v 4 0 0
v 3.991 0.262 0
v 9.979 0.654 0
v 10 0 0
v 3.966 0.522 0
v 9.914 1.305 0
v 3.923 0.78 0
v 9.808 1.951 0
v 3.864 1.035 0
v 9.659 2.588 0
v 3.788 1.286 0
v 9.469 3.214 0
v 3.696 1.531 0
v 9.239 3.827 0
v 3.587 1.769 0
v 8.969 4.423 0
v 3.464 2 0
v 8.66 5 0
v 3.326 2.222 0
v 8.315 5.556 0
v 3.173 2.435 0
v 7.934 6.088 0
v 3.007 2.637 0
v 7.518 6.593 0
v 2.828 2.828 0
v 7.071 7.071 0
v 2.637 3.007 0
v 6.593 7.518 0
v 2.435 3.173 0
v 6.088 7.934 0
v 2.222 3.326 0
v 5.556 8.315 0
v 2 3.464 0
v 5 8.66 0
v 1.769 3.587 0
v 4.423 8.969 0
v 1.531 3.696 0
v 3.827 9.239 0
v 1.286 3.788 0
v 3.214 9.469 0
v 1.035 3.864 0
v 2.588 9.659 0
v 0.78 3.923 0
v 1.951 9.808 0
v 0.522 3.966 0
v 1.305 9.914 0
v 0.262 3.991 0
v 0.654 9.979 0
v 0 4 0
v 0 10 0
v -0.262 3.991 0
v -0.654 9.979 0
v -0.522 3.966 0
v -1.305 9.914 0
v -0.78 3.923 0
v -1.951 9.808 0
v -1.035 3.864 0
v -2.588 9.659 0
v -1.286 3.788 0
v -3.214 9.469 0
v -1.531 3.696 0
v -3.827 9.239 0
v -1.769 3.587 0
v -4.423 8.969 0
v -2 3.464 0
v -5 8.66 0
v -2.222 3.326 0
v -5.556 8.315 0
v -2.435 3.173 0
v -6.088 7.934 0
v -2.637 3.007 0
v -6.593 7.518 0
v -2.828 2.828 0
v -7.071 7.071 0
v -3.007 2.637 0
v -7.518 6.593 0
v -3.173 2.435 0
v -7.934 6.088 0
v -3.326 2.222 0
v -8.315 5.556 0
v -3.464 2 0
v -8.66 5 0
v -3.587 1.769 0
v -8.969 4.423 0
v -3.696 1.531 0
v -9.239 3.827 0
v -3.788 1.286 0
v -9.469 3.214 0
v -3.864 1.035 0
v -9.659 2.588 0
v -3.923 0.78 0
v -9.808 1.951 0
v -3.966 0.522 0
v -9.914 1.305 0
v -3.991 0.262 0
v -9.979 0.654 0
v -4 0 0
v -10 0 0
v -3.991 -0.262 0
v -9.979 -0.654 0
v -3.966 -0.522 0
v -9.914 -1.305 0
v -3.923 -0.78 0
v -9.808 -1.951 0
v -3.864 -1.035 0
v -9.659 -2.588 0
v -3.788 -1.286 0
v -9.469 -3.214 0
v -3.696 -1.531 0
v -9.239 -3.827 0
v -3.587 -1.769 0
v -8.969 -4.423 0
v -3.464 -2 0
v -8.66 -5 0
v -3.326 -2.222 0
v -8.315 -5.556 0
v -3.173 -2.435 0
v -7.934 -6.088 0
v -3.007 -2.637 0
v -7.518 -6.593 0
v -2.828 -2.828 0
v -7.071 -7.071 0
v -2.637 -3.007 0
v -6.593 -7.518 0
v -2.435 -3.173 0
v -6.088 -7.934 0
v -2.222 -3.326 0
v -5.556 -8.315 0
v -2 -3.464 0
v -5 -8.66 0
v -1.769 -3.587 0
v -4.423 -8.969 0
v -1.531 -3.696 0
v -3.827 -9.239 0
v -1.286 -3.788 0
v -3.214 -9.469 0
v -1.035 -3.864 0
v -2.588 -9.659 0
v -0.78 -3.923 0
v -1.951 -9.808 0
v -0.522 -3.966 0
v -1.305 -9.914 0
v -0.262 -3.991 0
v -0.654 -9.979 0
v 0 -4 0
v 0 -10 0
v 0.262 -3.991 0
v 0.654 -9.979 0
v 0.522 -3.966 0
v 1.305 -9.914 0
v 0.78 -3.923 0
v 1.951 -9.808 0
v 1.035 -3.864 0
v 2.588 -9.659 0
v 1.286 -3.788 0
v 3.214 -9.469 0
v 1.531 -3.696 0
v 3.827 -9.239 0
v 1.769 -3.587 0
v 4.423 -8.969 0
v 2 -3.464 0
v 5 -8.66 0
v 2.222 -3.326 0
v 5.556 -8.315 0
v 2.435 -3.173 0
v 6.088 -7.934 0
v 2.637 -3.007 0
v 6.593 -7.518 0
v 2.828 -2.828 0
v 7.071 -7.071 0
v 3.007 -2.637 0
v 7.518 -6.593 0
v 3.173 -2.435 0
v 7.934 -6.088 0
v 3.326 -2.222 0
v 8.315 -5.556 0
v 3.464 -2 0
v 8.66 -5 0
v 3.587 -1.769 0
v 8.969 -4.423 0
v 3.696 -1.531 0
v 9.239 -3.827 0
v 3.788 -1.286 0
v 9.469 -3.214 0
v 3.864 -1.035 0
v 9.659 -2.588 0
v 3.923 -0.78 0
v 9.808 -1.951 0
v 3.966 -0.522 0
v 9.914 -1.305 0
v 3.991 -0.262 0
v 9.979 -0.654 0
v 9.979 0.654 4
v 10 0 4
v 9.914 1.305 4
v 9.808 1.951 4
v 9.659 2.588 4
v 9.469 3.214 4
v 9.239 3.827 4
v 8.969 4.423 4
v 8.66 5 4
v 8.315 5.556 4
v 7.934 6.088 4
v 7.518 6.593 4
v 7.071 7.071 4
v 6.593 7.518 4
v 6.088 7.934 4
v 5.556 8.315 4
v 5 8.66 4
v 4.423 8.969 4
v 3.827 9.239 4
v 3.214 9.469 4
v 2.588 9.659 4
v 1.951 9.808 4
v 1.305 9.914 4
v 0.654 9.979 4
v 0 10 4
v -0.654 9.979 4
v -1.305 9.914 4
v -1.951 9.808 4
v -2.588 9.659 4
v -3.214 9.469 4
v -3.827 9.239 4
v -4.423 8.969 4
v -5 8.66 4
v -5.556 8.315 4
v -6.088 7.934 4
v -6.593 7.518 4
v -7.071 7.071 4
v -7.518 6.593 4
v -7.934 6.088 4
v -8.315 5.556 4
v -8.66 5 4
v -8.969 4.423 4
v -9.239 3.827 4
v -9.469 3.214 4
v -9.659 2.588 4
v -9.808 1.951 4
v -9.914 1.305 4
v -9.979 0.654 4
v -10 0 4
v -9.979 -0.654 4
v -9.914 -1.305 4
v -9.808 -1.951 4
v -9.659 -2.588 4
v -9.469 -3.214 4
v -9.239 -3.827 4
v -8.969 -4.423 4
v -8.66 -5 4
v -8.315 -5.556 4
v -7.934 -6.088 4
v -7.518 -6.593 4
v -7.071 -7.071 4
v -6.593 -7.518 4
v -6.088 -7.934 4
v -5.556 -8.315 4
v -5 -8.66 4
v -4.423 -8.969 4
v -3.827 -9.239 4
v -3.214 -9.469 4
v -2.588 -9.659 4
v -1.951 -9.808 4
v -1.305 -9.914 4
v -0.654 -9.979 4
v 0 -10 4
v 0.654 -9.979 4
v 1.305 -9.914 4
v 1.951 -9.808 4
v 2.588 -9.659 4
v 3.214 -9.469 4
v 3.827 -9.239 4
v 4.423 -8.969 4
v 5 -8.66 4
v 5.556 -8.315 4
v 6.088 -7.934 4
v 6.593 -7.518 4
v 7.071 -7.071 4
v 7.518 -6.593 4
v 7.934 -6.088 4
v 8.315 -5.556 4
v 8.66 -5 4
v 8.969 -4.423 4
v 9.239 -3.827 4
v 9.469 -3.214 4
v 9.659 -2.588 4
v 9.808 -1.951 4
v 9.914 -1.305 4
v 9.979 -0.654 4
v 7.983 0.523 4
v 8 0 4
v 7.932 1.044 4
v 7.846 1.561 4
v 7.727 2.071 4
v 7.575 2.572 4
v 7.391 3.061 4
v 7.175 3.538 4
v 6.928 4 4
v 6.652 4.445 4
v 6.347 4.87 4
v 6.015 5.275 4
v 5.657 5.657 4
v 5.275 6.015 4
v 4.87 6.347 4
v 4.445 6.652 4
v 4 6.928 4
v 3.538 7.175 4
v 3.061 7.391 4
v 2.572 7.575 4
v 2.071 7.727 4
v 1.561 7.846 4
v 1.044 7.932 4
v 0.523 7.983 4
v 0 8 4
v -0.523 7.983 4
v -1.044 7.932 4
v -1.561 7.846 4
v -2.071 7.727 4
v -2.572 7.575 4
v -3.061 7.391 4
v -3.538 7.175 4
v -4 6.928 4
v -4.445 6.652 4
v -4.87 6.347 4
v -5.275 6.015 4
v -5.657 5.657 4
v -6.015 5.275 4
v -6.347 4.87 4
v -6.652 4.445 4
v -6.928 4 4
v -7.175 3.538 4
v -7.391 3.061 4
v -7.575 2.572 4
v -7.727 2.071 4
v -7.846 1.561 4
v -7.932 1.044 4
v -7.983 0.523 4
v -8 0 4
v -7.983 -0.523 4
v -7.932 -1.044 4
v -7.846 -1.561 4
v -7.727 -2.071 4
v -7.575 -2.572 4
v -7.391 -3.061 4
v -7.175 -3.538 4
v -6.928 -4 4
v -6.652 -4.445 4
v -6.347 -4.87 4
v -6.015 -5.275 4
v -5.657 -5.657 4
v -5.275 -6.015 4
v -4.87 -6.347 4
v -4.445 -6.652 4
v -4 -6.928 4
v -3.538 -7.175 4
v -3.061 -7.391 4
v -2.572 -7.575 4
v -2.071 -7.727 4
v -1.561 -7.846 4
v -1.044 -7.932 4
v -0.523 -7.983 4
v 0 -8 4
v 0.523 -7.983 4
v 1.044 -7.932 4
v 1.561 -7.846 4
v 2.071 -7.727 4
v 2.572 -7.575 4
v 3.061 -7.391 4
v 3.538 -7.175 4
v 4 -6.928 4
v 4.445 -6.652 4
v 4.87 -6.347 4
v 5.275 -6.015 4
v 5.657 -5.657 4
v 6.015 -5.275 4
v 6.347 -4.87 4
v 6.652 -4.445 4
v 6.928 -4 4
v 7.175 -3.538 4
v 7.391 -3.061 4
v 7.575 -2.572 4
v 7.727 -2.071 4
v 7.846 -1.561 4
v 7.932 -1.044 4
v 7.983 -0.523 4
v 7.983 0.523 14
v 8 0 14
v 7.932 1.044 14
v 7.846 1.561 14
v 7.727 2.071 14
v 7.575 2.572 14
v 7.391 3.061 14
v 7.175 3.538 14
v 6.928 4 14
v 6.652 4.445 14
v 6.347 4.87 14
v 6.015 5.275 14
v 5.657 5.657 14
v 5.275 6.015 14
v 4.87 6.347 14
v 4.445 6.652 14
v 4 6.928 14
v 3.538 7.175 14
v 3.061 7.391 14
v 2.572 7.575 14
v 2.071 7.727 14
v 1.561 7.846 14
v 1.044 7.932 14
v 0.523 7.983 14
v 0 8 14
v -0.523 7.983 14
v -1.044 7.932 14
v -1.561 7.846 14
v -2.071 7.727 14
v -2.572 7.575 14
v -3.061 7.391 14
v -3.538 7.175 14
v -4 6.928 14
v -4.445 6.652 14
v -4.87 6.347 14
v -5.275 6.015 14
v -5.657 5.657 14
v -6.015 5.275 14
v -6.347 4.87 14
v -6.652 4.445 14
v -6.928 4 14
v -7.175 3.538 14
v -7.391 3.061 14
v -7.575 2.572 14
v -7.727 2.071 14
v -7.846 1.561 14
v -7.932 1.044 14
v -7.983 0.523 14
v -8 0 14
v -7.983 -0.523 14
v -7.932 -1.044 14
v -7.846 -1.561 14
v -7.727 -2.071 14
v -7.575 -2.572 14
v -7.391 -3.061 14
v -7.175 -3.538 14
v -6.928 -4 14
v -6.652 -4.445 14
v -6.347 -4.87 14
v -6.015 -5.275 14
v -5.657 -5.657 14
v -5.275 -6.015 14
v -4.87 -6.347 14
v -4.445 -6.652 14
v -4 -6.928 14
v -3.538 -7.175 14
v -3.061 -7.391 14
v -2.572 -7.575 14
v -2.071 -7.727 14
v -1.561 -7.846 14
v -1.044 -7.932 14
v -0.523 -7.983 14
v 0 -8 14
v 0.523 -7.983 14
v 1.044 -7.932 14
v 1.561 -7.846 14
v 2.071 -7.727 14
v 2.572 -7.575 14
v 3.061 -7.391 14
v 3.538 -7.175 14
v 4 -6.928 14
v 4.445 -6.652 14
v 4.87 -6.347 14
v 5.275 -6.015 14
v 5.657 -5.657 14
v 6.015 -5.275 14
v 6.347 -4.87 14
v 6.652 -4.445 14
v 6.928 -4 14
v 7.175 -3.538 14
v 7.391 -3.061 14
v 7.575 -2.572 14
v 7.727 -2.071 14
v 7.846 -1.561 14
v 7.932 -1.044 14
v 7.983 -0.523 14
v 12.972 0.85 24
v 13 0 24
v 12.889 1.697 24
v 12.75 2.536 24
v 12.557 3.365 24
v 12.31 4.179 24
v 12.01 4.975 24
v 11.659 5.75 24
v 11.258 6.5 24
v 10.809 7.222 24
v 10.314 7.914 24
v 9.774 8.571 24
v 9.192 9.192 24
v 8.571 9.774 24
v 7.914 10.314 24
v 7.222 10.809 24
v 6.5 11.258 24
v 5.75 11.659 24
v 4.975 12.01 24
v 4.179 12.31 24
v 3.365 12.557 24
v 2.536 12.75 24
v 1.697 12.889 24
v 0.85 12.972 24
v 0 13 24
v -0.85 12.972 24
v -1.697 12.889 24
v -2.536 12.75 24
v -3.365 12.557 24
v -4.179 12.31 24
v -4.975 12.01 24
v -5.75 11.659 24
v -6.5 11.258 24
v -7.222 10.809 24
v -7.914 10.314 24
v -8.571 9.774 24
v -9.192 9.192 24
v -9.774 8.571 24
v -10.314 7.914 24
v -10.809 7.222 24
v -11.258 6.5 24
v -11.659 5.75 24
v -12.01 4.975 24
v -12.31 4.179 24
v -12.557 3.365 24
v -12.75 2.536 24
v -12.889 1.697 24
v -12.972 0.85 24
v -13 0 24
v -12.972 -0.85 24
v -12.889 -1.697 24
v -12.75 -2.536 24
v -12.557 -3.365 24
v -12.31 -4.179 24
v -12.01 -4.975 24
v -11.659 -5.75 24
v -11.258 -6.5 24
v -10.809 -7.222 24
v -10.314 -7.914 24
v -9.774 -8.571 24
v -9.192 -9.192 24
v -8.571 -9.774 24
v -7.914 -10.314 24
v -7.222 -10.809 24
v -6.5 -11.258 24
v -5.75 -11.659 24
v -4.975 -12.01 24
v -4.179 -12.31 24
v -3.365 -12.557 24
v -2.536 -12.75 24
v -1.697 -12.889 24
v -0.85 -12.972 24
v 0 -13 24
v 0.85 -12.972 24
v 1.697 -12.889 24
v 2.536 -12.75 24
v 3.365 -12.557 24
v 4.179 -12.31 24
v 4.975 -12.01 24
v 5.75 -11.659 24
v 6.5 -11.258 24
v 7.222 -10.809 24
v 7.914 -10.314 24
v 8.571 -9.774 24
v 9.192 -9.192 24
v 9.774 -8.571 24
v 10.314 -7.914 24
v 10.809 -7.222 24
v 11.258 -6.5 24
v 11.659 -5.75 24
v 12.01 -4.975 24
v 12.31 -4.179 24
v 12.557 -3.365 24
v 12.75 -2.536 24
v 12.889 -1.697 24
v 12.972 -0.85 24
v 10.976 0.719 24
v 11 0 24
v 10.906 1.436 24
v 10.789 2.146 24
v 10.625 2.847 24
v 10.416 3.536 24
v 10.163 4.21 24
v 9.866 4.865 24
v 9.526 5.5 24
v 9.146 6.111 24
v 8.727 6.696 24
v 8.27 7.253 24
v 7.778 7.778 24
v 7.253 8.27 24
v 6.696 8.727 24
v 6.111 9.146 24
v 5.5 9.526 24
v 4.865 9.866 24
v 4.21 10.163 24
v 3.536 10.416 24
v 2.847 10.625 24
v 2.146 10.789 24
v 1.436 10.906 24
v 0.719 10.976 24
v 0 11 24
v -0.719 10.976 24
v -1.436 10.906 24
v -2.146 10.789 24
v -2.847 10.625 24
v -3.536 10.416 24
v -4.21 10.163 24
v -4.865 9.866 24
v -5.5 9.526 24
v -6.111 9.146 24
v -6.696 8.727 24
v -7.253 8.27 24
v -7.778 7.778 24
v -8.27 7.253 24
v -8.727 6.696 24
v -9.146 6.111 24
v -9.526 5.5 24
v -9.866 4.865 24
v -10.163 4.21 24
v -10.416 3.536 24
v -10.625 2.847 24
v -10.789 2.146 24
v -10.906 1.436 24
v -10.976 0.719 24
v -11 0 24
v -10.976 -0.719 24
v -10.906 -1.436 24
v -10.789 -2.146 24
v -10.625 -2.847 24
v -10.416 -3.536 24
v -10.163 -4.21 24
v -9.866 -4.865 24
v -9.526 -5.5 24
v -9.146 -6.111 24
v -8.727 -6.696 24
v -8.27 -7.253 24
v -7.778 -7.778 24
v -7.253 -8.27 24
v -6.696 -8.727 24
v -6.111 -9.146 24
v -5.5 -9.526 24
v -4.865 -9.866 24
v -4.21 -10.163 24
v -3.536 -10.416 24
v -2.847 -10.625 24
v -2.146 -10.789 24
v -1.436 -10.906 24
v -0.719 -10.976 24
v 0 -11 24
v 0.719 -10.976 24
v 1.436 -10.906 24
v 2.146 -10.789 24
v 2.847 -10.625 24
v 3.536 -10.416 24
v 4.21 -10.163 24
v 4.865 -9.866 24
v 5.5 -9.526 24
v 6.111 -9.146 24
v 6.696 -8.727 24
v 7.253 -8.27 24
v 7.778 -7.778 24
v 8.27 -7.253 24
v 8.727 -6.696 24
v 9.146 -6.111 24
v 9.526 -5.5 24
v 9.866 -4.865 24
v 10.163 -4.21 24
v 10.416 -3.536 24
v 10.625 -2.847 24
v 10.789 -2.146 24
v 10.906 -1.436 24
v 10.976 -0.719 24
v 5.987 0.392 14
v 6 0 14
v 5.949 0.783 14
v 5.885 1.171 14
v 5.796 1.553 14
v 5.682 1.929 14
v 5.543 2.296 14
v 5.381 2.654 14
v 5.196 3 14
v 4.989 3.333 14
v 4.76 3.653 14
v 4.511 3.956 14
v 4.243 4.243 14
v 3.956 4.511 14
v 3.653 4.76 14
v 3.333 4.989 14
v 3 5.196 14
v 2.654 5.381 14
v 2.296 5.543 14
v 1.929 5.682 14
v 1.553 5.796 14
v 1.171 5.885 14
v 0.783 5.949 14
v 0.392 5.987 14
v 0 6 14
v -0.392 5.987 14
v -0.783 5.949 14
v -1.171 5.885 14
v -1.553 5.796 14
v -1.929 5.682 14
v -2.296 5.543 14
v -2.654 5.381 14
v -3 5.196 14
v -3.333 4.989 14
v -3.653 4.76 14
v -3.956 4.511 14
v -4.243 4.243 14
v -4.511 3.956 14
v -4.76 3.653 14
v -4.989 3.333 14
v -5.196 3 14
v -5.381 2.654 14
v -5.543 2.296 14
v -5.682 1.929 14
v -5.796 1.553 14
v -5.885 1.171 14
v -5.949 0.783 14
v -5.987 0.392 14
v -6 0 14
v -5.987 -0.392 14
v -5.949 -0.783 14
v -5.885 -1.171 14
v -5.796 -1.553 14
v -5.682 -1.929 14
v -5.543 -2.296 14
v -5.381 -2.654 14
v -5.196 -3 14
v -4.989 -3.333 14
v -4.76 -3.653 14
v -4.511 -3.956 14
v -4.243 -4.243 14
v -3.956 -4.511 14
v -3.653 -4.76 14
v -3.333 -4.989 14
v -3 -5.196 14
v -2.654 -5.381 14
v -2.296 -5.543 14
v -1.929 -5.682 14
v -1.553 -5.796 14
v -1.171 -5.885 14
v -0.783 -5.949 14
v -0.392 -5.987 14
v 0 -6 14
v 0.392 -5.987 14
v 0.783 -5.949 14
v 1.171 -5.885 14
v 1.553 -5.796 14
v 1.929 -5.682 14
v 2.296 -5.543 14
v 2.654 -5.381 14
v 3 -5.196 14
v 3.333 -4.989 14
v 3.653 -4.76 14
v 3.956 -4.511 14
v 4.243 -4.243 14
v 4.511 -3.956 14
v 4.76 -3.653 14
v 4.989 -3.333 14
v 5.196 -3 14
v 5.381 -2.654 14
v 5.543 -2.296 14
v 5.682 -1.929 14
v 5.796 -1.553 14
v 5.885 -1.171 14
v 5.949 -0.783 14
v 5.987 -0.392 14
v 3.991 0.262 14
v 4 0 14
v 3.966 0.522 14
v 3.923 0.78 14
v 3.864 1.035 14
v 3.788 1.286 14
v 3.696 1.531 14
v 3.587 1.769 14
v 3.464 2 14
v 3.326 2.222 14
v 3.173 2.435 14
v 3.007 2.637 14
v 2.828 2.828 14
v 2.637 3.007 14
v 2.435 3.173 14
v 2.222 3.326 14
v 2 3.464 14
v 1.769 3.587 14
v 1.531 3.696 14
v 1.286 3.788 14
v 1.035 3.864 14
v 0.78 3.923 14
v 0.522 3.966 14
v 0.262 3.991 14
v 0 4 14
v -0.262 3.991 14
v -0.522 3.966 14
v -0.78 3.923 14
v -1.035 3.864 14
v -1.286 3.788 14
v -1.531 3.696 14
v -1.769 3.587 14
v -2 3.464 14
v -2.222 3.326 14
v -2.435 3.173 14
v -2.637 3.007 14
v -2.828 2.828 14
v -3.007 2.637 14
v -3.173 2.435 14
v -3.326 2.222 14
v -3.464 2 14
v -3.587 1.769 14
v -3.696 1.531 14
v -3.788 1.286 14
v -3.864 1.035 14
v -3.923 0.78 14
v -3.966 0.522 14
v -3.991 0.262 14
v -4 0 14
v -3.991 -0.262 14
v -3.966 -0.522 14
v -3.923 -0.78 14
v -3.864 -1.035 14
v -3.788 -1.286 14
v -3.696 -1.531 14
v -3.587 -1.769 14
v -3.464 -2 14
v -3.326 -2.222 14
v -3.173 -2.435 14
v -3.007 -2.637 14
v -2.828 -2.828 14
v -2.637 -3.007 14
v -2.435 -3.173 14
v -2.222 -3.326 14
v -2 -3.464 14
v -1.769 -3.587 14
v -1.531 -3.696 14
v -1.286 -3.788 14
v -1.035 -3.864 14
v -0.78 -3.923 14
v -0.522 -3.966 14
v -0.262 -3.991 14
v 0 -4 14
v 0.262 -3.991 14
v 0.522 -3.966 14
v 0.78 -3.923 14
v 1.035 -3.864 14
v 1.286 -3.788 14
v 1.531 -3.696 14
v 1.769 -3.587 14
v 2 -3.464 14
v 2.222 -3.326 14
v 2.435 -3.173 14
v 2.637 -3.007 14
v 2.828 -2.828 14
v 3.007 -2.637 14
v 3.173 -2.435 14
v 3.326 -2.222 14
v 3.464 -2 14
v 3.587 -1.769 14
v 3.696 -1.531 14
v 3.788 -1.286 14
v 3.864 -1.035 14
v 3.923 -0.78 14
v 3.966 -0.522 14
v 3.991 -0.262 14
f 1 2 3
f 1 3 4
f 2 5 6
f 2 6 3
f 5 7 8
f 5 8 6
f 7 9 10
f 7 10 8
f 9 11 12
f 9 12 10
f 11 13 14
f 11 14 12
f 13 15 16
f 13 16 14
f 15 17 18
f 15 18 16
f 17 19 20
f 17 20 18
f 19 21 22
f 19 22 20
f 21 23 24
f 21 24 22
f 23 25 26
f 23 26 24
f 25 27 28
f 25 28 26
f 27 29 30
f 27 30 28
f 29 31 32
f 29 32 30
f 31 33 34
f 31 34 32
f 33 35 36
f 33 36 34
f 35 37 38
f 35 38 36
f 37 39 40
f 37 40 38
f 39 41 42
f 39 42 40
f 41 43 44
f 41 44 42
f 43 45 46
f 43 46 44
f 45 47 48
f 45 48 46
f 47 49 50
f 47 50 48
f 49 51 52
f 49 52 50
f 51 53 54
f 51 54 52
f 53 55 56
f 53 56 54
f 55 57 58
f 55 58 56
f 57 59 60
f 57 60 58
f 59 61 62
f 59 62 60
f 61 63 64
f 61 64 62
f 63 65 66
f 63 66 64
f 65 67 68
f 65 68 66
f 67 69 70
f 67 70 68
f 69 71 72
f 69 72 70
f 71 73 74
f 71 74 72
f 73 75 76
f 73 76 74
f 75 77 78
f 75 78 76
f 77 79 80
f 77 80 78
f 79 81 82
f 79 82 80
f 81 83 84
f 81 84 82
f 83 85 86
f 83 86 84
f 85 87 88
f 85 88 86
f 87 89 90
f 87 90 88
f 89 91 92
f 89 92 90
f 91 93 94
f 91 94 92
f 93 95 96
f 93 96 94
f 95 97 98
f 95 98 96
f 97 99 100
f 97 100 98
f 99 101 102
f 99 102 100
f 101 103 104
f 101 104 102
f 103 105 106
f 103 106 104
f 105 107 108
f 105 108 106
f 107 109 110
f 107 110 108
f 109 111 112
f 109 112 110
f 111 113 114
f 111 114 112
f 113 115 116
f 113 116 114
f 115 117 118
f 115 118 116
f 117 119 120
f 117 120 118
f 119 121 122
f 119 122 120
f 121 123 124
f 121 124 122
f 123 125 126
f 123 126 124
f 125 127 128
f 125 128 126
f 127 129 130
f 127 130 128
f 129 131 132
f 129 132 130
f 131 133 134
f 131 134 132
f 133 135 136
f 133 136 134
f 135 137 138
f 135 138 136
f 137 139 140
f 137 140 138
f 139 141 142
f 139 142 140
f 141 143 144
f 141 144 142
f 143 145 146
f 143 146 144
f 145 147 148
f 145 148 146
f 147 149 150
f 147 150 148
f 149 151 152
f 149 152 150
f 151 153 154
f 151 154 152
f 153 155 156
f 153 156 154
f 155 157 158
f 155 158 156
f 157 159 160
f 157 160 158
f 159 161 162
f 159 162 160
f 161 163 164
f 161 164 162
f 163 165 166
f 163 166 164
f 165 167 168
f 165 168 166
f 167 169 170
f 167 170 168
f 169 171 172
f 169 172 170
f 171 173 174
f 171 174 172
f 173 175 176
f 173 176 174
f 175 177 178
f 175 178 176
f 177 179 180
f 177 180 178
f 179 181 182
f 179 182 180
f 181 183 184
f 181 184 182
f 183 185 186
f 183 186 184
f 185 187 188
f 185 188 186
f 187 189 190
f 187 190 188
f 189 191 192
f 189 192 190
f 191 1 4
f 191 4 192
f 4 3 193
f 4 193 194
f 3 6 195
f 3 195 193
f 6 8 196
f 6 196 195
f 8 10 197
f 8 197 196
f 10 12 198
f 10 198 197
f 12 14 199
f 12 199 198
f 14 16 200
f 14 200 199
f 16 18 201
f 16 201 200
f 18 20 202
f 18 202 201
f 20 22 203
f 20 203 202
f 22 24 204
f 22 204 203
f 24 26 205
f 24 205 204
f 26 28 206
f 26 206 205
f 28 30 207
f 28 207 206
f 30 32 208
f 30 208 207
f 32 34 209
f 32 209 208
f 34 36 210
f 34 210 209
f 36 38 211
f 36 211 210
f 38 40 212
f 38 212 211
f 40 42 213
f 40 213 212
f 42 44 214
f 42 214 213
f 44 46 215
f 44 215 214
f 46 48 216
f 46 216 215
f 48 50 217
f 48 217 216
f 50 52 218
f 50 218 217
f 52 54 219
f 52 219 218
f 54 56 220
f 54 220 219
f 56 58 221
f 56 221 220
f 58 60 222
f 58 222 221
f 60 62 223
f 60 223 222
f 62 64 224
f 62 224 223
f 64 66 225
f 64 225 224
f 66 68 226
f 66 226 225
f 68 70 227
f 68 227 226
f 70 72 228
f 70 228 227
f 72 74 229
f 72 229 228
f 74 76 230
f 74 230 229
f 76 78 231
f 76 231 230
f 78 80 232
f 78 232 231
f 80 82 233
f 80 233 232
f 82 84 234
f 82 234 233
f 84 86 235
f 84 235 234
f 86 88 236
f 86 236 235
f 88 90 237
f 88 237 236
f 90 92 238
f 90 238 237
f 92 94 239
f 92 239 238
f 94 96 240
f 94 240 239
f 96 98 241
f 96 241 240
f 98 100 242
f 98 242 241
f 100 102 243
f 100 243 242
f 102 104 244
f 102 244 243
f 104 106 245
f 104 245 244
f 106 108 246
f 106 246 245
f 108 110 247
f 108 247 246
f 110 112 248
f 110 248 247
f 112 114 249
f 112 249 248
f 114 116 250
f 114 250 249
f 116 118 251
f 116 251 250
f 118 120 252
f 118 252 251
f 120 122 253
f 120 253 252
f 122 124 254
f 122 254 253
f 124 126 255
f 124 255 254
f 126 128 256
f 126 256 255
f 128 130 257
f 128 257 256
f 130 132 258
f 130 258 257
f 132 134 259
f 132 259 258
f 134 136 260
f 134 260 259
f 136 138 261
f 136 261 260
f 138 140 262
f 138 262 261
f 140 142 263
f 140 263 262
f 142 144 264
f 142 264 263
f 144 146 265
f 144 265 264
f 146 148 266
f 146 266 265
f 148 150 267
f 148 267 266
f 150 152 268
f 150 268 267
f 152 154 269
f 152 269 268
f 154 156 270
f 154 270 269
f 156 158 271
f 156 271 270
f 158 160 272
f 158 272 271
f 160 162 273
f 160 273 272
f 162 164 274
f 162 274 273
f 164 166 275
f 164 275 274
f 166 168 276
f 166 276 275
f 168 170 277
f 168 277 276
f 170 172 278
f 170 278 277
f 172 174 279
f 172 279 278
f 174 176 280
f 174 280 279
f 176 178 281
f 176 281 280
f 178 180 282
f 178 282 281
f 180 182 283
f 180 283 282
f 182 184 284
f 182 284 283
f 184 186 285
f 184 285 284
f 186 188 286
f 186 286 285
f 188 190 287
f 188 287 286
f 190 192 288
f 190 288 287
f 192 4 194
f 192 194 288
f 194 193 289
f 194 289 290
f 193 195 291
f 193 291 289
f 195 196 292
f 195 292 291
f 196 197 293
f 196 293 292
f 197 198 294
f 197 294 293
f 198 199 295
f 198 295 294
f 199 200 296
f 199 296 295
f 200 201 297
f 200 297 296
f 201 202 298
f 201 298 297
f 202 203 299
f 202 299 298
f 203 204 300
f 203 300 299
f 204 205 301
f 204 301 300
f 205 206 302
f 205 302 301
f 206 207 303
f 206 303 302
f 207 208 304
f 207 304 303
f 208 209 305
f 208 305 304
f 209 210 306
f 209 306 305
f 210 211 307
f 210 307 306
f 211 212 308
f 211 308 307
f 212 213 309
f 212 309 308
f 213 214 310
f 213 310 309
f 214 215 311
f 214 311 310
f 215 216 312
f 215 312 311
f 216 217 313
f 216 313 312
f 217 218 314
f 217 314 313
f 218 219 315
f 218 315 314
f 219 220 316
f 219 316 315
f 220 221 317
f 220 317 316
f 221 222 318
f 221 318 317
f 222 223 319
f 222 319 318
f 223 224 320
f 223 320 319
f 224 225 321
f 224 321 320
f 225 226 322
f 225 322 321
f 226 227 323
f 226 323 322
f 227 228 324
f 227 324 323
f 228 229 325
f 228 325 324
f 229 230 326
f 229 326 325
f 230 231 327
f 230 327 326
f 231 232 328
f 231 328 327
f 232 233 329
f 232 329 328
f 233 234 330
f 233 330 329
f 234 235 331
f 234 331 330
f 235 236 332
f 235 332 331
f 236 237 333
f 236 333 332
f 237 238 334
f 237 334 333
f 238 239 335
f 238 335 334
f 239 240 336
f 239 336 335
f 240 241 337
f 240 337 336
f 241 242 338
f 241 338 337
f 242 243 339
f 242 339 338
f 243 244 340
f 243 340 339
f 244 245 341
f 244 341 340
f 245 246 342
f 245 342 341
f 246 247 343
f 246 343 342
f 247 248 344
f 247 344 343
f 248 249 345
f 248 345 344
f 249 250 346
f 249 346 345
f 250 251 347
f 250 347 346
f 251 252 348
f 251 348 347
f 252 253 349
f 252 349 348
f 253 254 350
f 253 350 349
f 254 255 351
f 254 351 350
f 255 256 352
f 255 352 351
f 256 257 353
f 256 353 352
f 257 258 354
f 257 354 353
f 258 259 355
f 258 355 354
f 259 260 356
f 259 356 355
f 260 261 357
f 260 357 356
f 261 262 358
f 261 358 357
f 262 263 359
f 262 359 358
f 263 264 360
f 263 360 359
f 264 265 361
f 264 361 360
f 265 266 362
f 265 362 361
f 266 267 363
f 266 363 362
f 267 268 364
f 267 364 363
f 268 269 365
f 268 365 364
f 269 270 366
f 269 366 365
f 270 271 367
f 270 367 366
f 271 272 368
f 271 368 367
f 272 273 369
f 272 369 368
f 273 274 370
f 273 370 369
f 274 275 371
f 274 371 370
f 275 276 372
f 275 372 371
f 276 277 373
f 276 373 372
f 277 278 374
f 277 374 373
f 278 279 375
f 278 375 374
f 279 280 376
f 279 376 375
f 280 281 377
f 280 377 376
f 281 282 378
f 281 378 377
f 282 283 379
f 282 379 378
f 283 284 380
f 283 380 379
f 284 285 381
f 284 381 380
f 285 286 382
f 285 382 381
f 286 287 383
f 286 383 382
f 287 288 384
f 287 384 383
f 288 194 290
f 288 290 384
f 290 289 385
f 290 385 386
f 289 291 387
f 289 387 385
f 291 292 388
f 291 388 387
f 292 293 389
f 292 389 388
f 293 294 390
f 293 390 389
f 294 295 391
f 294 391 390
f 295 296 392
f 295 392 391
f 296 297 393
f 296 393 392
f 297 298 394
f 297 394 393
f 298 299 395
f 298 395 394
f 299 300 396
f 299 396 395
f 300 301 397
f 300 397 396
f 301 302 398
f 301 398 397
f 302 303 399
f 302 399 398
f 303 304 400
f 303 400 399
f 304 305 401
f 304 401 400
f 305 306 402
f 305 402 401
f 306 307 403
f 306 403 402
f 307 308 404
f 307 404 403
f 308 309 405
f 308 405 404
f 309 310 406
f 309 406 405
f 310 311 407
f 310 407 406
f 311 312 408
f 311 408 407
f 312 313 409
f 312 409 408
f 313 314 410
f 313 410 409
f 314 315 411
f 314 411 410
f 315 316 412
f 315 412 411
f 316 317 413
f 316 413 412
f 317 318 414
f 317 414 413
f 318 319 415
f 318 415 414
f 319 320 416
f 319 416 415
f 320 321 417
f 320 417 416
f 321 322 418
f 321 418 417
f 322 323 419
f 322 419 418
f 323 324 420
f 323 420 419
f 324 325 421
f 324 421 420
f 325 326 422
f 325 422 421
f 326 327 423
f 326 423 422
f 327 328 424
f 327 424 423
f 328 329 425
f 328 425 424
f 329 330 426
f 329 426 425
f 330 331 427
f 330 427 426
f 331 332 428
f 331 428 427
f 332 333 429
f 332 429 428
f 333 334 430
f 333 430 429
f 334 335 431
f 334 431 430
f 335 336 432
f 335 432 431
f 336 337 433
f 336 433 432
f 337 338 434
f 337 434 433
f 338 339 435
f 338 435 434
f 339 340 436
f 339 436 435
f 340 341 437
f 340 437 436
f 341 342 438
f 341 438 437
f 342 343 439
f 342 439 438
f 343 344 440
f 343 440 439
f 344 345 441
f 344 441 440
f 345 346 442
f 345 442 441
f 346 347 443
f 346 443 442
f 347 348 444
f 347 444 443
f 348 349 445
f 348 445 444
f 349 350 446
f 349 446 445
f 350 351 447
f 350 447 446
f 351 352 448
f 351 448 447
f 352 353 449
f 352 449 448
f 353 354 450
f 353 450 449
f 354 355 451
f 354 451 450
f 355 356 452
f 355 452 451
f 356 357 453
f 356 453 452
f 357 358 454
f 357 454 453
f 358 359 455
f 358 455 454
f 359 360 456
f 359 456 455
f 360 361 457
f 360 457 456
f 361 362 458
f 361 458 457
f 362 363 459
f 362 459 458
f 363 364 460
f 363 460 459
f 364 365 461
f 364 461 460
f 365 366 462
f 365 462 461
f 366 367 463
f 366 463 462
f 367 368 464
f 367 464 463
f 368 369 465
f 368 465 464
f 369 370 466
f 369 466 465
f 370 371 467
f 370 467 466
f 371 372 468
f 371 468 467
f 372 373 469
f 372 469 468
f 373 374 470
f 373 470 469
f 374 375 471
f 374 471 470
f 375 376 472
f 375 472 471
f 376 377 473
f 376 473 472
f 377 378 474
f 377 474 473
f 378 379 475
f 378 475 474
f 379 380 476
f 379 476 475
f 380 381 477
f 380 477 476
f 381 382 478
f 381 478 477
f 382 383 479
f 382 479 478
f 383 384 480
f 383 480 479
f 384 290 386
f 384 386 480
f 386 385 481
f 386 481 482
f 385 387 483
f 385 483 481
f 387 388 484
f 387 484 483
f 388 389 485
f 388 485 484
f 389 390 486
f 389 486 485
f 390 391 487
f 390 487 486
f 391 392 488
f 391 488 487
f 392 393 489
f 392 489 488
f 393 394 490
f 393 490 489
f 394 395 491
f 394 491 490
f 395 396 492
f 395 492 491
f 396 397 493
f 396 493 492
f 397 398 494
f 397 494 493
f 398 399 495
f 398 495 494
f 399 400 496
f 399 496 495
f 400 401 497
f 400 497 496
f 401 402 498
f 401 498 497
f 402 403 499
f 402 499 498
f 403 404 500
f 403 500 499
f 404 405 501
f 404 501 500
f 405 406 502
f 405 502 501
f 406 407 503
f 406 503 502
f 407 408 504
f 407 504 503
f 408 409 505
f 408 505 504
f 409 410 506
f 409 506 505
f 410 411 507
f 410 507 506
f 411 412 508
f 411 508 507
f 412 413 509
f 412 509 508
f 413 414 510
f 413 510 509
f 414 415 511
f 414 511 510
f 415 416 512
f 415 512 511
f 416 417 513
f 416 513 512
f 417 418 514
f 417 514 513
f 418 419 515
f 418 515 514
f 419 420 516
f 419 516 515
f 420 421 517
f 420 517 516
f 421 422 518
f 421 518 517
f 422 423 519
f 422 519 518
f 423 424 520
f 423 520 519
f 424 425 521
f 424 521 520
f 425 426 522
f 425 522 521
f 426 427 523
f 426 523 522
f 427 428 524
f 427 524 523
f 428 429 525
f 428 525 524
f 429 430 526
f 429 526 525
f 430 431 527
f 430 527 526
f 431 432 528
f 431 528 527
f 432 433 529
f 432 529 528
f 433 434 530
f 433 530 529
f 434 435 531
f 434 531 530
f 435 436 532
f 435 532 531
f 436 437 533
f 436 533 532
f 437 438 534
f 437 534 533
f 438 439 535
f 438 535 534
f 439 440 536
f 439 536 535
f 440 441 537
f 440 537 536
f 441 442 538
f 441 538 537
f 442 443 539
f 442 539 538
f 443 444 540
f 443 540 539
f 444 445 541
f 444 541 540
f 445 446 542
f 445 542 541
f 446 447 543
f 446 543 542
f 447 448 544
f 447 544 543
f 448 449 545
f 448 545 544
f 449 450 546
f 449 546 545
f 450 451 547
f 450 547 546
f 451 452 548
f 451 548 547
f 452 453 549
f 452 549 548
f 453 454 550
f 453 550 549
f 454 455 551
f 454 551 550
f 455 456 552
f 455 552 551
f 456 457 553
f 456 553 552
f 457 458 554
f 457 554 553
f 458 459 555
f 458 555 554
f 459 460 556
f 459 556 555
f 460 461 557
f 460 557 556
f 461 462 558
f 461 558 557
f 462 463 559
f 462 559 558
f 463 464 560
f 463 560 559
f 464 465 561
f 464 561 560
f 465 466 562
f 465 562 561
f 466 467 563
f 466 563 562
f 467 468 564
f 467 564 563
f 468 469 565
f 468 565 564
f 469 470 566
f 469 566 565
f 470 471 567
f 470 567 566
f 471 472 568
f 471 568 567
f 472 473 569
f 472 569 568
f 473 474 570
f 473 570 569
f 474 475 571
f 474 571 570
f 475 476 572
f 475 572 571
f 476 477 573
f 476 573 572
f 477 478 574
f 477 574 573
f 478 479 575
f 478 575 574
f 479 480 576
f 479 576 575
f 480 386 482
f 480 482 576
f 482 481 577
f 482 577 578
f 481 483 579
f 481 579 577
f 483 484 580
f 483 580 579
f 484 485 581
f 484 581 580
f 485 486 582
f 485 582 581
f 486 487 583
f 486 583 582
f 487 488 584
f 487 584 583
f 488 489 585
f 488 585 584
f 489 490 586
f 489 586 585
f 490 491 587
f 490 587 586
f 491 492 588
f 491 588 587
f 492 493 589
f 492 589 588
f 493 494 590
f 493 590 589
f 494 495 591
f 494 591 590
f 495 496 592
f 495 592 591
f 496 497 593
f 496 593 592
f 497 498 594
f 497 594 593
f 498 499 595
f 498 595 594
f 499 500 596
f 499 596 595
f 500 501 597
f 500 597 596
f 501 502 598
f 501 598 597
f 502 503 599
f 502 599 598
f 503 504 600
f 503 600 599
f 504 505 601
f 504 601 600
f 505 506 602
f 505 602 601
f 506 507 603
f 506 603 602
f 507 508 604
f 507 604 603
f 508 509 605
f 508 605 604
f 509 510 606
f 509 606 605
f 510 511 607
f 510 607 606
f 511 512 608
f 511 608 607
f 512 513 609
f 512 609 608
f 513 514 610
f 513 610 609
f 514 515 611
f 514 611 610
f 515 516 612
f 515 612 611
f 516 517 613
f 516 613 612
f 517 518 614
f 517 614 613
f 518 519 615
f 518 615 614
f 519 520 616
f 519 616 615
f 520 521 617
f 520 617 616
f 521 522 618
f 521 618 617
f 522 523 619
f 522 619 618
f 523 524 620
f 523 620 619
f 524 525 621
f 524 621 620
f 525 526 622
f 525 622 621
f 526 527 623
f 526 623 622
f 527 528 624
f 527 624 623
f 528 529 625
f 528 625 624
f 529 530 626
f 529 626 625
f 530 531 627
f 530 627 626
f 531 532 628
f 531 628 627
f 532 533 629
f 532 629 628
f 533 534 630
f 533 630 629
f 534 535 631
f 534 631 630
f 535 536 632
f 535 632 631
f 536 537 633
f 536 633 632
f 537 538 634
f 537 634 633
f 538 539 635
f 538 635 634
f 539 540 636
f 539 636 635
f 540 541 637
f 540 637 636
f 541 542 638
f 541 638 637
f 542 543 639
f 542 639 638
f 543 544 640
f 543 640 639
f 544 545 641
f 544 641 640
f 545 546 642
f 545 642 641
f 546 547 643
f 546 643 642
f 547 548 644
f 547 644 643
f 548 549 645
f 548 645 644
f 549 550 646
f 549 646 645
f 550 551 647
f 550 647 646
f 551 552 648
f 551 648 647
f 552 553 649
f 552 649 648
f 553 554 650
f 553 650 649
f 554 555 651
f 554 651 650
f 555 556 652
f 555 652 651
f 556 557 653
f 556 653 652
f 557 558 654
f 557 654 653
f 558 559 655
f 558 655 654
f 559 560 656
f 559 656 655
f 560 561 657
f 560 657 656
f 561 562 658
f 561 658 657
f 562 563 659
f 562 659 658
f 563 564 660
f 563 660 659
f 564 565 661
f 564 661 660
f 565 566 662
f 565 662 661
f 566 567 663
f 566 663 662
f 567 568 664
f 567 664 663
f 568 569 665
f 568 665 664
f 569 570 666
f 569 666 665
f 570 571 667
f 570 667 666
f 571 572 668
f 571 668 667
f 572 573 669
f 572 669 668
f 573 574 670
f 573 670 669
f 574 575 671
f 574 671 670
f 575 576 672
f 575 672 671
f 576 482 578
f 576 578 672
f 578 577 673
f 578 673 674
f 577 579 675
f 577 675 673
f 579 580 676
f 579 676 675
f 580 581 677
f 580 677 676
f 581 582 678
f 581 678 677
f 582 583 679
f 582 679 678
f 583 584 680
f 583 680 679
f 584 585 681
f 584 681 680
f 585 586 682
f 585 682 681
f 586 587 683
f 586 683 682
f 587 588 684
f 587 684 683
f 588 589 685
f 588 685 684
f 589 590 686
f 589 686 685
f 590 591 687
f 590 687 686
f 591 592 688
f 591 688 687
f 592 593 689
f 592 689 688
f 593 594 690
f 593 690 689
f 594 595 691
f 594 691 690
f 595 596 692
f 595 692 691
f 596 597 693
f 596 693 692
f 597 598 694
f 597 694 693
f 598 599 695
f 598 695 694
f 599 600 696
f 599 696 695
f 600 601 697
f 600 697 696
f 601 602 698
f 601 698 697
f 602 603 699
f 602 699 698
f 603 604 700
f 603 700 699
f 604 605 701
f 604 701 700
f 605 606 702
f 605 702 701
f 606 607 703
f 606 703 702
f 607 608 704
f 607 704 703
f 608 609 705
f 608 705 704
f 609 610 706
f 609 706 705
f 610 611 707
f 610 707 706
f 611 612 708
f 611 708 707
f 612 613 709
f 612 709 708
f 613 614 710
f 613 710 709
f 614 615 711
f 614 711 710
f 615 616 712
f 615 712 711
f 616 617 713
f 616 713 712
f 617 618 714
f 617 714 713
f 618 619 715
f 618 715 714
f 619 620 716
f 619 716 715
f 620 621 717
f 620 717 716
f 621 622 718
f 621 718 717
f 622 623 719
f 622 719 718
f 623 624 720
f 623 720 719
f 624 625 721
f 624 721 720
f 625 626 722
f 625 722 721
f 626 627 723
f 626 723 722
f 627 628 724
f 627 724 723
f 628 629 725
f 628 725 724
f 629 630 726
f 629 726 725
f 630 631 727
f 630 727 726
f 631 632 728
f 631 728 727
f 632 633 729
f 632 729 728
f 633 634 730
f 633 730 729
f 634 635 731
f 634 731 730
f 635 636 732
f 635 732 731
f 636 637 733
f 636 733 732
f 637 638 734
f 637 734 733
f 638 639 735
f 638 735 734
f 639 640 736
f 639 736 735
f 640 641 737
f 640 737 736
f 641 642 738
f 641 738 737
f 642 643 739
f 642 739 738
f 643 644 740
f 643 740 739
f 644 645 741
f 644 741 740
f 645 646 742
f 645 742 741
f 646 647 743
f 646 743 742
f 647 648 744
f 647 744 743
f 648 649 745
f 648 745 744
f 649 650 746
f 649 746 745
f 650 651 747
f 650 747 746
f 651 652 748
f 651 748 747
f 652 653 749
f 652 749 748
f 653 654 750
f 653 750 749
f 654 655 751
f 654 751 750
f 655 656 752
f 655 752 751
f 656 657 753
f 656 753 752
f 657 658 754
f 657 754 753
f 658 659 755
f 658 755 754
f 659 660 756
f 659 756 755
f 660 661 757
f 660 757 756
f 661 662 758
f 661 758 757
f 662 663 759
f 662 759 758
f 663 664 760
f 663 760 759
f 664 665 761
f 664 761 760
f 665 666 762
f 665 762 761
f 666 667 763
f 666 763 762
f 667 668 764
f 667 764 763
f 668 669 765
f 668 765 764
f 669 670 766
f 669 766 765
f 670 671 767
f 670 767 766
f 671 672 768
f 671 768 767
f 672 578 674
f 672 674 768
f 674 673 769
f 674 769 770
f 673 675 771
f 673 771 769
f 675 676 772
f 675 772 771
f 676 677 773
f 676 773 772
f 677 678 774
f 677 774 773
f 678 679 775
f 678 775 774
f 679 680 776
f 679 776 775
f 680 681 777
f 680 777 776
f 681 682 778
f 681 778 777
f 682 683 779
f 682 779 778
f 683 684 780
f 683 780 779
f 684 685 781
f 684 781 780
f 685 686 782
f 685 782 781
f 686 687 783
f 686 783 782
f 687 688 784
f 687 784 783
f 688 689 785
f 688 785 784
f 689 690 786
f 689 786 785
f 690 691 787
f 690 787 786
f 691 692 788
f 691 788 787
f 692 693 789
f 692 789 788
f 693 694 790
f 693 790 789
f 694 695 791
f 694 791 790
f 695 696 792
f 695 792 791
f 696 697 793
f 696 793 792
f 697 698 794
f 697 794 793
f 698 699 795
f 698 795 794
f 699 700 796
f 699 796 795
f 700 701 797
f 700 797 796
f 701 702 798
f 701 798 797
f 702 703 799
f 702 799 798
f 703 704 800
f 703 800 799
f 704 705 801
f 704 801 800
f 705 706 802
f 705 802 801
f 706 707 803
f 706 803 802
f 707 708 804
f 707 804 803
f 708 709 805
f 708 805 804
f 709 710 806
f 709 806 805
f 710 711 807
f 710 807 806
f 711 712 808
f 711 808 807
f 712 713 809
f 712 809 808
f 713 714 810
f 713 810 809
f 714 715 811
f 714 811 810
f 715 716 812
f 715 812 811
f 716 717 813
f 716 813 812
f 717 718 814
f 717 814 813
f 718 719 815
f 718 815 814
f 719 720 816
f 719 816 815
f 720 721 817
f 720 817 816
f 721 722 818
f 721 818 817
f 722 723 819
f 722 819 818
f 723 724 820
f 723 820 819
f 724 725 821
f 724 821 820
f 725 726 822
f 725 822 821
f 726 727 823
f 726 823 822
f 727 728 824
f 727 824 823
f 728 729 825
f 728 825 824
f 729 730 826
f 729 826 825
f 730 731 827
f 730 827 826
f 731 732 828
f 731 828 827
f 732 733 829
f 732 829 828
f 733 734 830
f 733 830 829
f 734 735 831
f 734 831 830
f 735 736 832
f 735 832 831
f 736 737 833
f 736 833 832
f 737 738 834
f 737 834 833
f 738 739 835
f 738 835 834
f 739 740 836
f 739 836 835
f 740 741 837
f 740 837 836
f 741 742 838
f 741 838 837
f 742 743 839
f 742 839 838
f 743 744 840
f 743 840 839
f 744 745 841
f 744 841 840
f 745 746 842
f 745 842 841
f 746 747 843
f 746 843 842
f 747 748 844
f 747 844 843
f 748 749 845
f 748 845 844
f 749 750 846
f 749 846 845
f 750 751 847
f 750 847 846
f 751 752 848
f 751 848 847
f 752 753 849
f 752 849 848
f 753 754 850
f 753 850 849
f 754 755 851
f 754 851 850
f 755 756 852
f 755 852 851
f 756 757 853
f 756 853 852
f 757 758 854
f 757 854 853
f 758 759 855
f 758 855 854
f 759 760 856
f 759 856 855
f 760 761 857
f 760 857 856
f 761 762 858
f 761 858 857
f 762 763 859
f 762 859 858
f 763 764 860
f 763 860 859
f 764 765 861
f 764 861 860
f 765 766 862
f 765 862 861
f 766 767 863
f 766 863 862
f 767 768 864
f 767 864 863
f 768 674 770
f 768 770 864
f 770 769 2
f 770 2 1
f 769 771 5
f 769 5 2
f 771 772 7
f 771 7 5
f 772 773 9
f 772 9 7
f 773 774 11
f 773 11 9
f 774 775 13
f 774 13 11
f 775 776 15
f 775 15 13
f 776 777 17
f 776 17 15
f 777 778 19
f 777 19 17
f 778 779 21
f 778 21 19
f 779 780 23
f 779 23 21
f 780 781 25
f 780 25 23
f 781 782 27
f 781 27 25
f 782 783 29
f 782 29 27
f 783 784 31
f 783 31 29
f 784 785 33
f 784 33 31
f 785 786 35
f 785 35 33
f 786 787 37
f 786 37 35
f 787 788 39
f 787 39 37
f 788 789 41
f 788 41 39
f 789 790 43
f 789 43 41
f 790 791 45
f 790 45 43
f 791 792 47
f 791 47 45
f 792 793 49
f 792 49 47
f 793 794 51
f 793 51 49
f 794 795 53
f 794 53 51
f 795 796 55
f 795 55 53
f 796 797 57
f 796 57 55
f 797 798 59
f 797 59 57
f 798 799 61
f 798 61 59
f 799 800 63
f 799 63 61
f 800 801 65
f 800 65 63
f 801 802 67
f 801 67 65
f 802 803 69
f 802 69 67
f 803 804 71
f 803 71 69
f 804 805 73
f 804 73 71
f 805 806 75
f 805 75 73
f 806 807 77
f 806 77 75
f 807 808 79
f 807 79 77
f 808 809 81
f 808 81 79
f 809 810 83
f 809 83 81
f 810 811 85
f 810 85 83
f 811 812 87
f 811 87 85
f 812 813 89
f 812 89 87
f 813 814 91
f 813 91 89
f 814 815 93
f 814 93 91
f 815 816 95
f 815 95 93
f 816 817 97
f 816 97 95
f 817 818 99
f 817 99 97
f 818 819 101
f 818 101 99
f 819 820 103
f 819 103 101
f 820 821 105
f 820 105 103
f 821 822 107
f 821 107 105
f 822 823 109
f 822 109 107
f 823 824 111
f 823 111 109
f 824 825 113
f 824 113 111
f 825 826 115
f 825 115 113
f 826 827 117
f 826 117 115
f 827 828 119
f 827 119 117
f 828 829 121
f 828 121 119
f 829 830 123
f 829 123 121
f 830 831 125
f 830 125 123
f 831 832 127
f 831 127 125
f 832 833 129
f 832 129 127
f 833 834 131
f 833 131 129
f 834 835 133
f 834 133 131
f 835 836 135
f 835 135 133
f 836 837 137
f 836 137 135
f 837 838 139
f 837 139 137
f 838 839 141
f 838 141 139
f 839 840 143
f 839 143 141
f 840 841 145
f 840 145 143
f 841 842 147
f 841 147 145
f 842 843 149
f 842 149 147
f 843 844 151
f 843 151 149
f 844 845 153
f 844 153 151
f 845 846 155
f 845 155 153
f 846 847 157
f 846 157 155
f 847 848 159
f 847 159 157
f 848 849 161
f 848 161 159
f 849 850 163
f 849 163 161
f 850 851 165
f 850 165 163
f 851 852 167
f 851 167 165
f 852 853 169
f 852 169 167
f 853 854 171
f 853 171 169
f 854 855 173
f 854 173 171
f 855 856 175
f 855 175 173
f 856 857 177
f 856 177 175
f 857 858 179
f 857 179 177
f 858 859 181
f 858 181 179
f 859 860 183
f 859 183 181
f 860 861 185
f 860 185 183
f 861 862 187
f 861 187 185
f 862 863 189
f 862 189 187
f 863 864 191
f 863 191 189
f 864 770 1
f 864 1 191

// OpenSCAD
// Original MechIntel educational model. CC0-1.0. Units: mm.
// Not a standardized or load-rated component.
$fn=96;
// Section points: [radius, height], mm. Edit to change the profile.
section=[[4, 0], [10, 0], [10, 4], [8, 4], [8, 14], [13, 24], [11, 24], [6, 14], [4, 14]];
rotate_extrude($fn=96) polygon(points=section);
